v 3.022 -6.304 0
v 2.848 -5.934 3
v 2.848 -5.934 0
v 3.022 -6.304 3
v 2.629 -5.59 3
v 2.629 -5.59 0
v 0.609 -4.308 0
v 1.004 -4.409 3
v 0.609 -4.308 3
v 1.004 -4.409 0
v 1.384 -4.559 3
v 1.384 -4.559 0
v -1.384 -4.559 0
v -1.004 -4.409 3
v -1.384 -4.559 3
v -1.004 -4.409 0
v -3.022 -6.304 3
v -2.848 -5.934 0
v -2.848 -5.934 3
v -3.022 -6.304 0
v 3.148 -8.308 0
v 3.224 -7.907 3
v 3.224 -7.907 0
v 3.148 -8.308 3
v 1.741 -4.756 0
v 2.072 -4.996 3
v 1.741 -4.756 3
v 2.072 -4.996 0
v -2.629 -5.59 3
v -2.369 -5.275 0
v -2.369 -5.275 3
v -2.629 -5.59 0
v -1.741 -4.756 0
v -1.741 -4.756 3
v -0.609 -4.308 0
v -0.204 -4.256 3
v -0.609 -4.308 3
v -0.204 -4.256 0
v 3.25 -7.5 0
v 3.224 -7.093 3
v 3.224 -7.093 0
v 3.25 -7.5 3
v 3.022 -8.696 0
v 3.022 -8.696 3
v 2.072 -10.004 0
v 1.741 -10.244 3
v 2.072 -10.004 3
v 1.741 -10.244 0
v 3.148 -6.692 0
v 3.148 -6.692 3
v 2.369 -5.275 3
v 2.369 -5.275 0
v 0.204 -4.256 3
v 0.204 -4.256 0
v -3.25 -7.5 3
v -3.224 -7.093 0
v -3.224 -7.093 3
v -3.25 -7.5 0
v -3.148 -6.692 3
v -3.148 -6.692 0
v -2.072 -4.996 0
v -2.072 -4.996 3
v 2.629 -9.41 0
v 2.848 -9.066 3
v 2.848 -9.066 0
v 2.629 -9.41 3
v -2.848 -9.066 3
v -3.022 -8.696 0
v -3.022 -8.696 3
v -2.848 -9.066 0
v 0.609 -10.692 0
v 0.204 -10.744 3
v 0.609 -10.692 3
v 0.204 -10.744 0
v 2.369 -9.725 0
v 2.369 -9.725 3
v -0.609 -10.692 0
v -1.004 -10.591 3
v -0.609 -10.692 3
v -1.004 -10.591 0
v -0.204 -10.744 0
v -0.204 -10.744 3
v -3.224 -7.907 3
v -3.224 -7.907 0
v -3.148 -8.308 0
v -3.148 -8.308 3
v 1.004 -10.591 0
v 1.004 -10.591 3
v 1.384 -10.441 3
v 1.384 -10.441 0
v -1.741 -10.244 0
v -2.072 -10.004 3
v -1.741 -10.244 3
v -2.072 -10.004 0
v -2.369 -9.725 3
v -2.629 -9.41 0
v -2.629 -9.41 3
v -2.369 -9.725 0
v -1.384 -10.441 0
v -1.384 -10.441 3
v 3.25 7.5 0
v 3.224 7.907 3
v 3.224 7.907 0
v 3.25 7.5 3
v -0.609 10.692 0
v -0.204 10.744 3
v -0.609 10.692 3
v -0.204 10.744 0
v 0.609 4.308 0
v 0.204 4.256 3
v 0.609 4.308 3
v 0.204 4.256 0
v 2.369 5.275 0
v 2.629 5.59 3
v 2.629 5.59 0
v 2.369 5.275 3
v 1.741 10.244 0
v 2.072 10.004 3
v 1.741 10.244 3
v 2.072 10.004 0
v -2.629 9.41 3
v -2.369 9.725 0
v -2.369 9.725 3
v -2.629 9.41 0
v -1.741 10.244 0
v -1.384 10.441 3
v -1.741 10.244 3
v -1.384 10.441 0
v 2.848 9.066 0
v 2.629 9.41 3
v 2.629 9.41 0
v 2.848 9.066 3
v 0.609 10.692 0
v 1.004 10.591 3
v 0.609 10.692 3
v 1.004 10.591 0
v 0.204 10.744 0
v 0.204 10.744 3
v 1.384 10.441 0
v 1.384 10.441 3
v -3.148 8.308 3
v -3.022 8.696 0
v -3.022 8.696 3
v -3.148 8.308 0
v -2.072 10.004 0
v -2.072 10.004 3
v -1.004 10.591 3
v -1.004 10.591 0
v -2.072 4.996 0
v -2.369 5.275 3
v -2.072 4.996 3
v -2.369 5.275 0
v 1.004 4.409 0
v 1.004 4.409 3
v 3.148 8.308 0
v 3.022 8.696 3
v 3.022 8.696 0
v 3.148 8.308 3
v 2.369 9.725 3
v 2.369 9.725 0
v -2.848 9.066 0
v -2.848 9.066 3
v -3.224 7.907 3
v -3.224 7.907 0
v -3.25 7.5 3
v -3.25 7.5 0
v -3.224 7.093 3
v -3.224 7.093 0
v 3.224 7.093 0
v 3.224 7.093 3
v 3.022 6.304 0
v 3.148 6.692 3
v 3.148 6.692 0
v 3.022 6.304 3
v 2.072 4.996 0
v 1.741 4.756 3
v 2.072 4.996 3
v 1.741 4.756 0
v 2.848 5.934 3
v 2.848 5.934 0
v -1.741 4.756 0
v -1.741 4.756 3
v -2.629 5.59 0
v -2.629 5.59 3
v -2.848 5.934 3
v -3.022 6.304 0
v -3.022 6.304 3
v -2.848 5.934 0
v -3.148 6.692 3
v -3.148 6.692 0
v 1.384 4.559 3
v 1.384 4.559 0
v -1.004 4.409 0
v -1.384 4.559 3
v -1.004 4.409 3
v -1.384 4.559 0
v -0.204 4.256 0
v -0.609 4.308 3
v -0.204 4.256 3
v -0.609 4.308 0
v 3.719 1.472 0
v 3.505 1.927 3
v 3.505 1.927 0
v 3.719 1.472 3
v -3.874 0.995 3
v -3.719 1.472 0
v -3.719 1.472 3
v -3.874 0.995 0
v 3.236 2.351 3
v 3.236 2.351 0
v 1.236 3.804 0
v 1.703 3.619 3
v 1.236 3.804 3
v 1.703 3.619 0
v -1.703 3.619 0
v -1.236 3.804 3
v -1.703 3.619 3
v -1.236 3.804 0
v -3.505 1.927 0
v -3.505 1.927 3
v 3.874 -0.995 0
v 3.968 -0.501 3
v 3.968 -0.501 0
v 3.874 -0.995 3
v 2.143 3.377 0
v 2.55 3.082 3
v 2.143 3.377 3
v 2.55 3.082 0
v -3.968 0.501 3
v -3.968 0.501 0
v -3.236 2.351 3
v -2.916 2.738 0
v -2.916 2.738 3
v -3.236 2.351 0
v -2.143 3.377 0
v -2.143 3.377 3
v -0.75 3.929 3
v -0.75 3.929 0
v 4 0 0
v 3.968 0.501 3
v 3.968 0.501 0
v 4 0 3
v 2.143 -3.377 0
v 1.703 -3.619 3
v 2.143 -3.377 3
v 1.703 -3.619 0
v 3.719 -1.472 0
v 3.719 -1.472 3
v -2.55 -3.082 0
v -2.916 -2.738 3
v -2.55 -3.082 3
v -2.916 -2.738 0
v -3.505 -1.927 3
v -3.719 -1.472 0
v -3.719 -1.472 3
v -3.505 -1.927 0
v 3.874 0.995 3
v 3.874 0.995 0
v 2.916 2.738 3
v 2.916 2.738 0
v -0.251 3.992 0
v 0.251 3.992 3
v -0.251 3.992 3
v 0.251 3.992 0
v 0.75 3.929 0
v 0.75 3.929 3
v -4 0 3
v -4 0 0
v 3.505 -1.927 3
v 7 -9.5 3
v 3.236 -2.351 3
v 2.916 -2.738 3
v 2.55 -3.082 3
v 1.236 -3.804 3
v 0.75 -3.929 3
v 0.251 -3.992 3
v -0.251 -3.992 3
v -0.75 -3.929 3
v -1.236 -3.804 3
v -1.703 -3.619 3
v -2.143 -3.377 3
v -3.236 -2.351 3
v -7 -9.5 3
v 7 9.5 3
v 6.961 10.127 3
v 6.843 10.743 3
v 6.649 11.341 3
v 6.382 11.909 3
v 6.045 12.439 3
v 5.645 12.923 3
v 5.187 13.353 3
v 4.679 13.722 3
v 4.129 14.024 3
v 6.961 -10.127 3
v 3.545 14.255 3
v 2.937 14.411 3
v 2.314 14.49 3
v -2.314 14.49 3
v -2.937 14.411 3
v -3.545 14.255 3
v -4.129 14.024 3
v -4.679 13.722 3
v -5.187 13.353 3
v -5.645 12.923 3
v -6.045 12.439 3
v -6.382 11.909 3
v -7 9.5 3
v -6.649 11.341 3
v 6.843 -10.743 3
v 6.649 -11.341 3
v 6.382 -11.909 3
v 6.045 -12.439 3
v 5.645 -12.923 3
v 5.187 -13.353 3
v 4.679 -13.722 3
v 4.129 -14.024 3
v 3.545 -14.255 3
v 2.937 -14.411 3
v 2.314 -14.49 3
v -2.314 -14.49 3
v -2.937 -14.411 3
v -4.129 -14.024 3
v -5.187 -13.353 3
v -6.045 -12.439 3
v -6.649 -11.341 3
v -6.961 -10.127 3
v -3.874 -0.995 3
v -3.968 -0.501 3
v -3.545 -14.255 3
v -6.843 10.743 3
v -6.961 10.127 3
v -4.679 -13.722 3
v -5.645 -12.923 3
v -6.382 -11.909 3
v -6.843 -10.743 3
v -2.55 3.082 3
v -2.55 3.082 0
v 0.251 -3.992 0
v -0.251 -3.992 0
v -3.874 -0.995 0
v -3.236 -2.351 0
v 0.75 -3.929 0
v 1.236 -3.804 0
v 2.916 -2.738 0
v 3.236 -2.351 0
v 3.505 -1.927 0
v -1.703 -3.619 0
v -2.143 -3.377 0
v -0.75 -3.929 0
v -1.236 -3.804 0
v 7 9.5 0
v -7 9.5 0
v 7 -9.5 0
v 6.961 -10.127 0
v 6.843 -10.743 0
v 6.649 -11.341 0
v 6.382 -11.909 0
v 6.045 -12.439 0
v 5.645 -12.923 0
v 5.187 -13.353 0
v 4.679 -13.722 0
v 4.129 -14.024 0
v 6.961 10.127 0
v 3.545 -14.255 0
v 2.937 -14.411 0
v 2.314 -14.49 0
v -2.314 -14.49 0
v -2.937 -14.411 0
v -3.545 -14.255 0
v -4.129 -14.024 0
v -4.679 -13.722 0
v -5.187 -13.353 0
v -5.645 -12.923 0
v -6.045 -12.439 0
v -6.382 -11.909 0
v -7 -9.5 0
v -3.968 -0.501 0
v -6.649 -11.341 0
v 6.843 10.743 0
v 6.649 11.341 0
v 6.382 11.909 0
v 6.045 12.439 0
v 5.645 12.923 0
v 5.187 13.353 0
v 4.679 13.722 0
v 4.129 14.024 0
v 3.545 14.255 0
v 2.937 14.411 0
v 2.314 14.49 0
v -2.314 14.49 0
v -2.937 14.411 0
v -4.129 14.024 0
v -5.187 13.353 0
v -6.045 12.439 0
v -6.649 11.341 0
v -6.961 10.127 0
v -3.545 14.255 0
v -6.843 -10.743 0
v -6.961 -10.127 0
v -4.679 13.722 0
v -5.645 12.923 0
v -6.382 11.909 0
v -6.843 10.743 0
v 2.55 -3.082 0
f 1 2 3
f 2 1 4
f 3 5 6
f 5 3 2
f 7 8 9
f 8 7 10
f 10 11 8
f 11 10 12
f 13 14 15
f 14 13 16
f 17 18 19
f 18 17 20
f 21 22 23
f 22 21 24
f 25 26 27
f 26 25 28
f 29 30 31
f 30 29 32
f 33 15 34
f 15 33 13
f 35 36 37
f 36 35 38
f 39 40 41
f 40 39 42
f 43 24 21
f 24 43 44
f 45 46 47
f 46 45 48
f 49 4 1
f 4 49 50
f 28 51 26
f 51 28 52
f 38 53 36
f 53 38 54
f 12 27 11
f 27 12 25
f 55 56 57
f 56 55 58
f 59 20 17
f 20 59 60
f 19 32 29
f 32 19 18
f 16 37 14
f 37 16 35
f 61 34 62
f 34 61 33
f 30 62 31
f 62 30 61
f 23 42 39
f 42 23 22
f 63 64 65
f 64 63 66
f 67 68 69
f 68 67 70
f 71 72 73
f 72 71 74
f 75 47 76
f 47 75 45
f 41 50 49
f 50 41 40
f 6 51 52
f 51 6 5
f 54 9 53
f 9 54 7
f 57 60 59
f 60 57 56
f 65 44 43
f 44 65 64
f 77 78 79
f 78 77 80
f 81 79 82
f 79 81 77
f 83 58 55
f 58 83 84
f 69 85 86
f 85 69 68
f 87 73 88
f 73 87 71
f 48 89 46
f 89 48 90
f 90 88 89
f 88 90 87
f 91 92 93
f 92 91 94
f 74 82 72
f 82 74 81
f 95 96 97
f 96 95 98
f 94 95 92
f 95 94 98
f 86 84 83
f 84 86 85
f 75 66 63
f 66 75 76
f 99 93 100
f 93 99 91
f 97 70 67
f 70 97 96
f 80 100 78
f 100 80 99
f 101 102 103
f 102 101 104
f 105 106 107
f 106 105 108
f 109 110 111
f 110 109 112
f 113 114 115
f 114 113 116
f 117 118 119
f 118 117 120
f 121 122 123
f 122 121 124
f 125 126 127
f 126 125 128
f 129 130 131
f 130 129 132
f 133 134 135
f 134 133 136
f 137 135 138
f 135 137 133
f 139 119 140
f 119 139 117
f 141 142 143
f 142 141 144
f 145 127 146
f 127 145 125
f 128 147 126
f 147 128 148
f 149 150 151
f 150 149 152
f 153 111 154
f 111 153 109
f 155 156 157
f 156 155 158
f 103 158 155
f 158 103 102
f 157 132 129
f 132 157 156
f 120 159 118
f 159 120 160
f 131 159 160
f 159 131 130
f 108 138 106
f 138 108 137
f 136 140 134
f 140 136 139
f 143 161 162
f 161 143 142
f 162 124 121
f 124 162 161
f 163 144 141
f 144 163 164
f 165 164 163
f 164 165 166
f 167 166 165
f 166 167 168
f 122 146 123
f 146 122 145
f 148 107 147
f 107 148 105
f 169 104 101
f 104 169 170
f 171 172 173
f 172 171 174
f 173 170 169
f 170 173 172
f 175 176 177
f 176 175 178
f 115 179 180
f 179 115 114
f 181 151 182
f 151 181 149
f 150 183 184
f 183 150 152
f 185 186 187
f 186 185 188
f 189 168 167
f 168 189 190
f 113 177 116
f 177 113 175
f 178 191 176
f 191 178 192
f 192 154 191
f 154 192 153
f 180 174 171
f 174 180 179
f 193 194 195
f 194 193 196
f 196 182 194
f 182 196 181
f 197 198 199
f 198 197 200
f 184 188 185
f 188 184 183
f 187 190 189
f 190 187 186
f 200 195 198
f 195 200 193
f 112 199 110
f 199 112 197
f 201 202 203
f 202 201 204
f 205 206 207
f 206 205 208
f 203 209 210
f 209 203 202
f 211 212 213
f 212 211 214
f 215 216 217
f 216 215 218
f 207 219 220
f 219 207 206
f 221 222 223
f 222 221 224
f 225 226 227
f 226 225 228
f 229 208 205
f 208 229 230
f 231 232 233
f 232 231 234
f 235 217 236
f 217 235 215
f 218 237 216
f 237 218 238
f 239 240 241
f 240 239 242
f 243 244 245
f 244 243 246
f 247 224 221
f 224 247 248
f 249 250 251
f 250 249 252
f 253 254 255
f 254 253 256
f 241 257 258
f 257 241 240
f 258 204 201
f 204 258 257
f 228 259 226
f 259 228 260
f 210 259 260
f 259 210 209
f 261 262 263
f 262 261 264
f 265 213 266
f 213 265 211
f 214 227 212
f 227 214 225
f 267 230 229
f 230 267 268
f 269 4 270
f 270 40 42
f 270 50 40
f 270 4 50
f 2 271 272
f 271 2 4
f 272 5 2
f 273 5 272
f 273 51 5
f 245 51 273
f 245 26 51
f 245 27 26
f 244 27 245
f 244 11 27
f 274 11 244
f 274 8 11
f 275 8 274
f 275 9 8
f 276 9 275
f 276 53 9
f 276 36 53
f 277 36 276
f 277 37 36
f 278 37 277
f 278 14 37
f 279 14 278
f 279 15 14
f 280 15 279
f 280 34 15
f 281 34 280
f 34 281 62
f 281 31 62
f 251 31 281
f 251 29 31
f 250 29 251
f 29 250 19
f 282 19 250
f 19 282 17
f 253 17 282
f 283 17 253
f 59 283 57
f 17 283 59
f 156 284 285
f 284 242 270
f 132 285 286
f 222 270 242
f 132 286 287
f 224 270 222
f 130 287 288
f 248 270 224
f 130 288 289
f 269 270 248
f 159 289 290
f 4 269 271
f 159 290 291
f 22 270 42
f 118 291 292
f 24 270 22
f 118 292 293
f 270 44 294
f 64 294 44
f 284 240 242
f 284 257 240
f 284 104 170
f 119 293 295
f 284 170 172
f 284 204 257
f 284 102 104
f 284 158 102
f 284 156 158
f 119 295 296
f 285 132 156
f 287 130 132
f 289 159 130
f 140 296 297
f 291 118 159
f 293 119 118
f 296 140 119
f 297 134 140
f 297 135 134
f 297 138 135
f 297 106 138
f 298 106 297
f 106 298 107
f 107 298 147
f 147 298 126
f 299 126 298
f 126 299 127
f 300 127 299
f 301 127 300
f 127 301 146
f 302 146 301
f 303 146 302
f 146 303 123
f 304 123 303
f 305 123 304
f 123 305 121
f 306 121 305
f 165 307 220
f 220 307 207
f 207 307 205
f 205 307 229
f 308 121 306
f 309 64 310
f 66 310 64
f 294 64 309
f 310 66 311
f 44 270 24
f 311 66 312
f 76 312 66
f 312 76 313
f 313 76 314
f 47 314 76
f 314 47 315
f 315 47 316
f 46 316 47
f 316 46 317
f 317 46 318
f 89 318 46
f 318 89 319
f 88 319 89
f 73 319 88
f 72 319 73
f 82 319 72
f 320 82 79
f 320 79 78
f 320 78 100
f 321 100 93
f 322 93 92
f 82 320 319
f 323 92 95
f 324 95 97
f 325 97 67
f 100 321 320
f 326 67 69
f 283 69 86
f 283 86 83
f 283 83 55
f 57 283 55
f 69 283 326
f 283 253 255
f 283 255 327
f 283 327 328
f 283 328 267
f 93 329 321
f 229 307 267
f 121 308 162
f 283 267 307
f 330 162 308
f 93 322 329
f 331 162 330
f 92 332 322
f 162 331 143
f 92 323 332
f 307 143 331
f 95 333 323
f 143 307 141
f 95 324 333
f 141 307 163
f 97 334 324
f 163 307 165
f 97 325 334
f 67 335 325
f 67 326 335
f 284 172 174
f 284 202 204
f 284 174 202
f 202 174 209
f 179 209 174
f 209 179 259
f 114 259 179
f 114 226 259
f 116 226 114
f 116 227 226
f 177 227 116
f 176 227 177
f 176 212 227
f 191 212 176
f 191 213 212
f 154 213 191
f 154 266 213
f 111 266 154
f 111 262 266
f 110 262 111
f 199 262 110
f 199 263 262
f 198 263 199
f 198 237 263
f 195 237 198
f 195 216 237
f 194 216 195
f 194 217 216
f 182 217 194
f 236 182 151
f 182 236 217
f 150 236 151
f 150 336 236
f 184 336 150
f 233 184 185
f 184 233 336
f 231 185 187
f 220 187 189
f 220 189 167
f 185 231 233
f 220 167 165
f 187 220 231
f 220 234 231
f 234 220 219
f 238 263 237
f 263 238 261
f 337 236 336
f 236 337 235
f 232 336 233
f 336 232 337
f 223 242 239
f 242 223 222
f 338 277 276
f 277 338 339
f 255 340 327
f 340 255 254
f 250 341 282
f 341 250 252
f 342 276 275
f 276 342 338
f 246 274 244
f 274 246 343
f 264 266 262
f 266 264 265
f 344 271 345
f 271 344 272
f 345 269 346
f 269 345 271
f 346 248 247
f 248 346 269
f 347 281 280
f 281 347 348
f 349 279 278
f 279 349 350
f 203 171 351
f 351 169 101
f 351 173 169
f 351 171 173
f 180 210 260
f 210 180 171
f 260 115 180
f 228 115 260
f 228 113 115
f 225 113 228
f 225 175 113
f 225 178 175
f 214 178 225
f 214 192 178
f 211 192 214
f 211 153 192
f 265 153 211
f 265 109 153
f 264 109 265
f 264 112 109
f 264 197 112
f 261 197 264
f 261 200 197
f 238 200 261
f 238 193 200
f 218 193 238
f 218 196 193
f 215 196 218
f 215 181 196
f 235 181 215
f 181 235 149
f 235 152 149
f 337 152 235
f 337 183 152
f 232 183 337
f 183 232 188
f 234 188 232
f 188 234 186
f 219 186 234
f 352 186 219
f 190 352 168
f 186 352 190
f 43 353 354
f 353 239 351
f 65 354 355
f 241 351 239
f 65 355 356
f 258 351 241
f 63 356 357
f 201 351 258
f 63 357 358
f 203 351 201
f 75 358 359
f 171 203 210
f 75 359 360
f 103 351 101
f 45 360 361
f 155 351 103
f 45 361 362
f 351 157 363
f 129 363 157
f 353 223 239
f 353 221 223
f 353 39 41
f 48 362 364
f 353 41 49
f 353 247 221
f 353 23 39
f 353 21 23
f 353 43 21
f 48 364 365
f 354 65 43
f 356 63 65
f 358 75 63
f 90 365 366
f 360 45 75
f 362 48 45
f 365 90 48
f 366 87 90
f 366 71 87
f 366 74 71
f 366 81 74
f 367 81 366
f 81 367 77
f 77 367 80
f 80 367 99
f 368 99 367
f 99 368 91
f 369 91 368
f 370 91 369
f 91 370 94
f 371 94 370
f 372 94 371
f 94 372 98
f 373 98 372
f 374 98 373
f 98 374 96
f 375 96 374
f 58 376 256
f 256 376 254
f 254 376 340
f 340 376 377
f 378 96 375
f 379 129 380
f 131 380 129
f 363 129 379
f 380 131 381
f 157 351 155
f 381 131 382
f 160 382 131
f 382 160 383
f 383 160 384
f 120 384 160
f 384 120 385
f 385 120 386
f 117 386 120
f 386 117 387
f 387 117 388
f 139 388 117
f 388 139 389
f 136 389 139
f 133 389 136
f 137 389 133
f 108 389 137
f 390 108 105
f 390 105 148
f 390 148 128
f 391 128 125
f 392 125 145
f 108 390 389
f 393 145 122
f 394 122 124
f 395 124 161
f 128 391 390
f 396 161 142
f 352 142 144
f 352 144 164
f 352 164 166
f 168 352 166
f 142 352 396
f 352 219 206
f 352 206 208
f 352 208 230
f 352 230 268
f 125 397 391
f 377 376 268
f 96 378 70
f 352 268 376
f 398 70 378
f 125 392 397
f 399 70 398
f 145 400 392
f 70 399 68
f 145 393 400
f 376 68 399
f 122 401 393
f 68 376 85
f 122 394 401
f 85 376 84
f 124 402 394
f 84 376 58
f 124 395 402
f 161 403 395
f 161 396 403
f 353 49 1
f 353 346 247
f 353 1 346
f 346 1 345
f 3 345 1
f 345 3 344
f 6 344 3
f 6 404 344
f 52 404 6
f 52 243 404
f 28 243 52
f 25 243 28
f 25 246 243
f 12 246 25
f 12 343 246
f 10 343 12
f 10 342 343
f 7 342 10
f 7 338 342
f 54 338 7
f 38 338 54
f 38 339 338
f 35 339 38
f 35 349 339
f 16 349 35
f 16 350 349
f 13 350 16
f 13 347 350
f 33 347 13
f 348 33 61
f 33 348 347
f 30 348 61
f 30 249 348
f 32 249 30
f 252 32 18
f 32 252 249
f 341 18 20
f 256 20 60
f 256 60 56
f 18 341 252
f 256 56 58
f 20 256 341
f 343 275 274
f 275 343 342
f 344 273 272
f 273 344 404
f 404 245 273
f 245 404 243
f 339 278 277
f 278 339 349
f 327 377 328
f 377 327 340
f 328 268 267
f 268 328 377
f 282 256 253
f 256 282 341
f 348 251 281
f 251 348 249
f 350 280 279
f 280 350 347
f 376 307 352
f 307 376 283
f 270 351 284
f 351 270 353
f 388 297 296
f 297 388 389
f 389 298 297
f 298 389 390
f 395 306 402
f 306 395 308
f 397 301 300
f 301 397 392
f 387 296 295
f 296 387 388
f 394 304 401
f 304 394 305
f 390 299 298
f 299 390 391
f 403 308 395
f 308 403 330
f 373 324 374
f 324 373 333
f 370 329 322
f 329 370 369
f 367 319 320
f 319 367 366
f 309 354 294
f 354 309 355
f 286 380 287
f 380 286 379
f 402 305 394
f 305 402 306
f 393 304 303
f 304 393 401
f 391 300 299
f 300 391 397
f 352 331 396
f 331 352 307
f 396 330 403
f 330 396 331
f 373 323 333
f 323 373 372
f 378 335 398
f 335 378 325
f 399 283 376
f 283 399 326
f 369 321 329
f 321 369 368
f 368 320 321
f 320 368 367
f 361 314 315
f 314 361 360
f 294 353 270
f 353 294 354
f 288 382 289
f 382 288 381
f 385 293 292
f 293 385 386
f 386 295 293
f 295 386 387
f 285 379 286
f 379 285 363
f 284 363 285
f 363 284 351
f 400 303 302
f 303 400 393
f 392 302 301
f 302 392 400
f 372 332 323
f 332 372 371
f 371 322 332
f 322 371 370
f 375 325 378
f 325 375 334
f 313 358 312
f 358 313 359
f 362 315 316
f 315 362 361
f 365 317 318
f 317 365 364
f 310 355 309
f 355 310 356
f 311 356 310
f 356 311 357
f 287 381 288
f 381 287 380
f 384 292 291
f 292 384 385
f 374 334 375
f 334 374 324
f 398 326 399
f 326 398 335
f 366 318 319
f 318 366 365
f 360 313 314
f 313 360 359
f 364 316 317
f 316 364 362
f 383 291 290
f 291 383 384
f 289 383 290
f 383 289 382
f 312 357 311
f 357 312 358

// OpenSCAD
$fn = 50;


difference() {
	union() {
		hull() {
			translate(v = [-2.0000000000, 9.5000000000, 0]) {
				cylinder(h = 3, r = 5);
			}
			translate(v = [2.0000000000, 9.5000000000, 0]) {
				cylinder(h = 3, r = 5);
			}
			translate(v = [-2.0000000000, -9.5000000000, 0]) {
				cylinder(h = 3, r = 5);
			}
			translate(v = [2.0000000000, -9.5000000000, 0]) {
				cylinder(h = 3, r = 5);
			}
		}
	}
	union() {
		#translate(v = [0.0000000000, -7.5000000000, -100.0000000000]) {
			cylinder(h = 200, r = 3.2500000000);
		}
		#translate(v = [0.0000000000, -7.5000000000, -100.0000000000]) {
			cylinder(h = 200, r = 3.2500000000);
		}
		#translate(v = [0.0000000000, 7.5000000000, -100.0000000000]) {
			cylinder(h = 200, r = 3.2500000000);
		}
		#translate(v = [0.0000000000, 7.5000000000, -100.0000000000]) {
			cylinder(h = 200, r = 3.2500000000);
		}
		#cylinder(h = 3, r = 4.0000000000);
	}
}
